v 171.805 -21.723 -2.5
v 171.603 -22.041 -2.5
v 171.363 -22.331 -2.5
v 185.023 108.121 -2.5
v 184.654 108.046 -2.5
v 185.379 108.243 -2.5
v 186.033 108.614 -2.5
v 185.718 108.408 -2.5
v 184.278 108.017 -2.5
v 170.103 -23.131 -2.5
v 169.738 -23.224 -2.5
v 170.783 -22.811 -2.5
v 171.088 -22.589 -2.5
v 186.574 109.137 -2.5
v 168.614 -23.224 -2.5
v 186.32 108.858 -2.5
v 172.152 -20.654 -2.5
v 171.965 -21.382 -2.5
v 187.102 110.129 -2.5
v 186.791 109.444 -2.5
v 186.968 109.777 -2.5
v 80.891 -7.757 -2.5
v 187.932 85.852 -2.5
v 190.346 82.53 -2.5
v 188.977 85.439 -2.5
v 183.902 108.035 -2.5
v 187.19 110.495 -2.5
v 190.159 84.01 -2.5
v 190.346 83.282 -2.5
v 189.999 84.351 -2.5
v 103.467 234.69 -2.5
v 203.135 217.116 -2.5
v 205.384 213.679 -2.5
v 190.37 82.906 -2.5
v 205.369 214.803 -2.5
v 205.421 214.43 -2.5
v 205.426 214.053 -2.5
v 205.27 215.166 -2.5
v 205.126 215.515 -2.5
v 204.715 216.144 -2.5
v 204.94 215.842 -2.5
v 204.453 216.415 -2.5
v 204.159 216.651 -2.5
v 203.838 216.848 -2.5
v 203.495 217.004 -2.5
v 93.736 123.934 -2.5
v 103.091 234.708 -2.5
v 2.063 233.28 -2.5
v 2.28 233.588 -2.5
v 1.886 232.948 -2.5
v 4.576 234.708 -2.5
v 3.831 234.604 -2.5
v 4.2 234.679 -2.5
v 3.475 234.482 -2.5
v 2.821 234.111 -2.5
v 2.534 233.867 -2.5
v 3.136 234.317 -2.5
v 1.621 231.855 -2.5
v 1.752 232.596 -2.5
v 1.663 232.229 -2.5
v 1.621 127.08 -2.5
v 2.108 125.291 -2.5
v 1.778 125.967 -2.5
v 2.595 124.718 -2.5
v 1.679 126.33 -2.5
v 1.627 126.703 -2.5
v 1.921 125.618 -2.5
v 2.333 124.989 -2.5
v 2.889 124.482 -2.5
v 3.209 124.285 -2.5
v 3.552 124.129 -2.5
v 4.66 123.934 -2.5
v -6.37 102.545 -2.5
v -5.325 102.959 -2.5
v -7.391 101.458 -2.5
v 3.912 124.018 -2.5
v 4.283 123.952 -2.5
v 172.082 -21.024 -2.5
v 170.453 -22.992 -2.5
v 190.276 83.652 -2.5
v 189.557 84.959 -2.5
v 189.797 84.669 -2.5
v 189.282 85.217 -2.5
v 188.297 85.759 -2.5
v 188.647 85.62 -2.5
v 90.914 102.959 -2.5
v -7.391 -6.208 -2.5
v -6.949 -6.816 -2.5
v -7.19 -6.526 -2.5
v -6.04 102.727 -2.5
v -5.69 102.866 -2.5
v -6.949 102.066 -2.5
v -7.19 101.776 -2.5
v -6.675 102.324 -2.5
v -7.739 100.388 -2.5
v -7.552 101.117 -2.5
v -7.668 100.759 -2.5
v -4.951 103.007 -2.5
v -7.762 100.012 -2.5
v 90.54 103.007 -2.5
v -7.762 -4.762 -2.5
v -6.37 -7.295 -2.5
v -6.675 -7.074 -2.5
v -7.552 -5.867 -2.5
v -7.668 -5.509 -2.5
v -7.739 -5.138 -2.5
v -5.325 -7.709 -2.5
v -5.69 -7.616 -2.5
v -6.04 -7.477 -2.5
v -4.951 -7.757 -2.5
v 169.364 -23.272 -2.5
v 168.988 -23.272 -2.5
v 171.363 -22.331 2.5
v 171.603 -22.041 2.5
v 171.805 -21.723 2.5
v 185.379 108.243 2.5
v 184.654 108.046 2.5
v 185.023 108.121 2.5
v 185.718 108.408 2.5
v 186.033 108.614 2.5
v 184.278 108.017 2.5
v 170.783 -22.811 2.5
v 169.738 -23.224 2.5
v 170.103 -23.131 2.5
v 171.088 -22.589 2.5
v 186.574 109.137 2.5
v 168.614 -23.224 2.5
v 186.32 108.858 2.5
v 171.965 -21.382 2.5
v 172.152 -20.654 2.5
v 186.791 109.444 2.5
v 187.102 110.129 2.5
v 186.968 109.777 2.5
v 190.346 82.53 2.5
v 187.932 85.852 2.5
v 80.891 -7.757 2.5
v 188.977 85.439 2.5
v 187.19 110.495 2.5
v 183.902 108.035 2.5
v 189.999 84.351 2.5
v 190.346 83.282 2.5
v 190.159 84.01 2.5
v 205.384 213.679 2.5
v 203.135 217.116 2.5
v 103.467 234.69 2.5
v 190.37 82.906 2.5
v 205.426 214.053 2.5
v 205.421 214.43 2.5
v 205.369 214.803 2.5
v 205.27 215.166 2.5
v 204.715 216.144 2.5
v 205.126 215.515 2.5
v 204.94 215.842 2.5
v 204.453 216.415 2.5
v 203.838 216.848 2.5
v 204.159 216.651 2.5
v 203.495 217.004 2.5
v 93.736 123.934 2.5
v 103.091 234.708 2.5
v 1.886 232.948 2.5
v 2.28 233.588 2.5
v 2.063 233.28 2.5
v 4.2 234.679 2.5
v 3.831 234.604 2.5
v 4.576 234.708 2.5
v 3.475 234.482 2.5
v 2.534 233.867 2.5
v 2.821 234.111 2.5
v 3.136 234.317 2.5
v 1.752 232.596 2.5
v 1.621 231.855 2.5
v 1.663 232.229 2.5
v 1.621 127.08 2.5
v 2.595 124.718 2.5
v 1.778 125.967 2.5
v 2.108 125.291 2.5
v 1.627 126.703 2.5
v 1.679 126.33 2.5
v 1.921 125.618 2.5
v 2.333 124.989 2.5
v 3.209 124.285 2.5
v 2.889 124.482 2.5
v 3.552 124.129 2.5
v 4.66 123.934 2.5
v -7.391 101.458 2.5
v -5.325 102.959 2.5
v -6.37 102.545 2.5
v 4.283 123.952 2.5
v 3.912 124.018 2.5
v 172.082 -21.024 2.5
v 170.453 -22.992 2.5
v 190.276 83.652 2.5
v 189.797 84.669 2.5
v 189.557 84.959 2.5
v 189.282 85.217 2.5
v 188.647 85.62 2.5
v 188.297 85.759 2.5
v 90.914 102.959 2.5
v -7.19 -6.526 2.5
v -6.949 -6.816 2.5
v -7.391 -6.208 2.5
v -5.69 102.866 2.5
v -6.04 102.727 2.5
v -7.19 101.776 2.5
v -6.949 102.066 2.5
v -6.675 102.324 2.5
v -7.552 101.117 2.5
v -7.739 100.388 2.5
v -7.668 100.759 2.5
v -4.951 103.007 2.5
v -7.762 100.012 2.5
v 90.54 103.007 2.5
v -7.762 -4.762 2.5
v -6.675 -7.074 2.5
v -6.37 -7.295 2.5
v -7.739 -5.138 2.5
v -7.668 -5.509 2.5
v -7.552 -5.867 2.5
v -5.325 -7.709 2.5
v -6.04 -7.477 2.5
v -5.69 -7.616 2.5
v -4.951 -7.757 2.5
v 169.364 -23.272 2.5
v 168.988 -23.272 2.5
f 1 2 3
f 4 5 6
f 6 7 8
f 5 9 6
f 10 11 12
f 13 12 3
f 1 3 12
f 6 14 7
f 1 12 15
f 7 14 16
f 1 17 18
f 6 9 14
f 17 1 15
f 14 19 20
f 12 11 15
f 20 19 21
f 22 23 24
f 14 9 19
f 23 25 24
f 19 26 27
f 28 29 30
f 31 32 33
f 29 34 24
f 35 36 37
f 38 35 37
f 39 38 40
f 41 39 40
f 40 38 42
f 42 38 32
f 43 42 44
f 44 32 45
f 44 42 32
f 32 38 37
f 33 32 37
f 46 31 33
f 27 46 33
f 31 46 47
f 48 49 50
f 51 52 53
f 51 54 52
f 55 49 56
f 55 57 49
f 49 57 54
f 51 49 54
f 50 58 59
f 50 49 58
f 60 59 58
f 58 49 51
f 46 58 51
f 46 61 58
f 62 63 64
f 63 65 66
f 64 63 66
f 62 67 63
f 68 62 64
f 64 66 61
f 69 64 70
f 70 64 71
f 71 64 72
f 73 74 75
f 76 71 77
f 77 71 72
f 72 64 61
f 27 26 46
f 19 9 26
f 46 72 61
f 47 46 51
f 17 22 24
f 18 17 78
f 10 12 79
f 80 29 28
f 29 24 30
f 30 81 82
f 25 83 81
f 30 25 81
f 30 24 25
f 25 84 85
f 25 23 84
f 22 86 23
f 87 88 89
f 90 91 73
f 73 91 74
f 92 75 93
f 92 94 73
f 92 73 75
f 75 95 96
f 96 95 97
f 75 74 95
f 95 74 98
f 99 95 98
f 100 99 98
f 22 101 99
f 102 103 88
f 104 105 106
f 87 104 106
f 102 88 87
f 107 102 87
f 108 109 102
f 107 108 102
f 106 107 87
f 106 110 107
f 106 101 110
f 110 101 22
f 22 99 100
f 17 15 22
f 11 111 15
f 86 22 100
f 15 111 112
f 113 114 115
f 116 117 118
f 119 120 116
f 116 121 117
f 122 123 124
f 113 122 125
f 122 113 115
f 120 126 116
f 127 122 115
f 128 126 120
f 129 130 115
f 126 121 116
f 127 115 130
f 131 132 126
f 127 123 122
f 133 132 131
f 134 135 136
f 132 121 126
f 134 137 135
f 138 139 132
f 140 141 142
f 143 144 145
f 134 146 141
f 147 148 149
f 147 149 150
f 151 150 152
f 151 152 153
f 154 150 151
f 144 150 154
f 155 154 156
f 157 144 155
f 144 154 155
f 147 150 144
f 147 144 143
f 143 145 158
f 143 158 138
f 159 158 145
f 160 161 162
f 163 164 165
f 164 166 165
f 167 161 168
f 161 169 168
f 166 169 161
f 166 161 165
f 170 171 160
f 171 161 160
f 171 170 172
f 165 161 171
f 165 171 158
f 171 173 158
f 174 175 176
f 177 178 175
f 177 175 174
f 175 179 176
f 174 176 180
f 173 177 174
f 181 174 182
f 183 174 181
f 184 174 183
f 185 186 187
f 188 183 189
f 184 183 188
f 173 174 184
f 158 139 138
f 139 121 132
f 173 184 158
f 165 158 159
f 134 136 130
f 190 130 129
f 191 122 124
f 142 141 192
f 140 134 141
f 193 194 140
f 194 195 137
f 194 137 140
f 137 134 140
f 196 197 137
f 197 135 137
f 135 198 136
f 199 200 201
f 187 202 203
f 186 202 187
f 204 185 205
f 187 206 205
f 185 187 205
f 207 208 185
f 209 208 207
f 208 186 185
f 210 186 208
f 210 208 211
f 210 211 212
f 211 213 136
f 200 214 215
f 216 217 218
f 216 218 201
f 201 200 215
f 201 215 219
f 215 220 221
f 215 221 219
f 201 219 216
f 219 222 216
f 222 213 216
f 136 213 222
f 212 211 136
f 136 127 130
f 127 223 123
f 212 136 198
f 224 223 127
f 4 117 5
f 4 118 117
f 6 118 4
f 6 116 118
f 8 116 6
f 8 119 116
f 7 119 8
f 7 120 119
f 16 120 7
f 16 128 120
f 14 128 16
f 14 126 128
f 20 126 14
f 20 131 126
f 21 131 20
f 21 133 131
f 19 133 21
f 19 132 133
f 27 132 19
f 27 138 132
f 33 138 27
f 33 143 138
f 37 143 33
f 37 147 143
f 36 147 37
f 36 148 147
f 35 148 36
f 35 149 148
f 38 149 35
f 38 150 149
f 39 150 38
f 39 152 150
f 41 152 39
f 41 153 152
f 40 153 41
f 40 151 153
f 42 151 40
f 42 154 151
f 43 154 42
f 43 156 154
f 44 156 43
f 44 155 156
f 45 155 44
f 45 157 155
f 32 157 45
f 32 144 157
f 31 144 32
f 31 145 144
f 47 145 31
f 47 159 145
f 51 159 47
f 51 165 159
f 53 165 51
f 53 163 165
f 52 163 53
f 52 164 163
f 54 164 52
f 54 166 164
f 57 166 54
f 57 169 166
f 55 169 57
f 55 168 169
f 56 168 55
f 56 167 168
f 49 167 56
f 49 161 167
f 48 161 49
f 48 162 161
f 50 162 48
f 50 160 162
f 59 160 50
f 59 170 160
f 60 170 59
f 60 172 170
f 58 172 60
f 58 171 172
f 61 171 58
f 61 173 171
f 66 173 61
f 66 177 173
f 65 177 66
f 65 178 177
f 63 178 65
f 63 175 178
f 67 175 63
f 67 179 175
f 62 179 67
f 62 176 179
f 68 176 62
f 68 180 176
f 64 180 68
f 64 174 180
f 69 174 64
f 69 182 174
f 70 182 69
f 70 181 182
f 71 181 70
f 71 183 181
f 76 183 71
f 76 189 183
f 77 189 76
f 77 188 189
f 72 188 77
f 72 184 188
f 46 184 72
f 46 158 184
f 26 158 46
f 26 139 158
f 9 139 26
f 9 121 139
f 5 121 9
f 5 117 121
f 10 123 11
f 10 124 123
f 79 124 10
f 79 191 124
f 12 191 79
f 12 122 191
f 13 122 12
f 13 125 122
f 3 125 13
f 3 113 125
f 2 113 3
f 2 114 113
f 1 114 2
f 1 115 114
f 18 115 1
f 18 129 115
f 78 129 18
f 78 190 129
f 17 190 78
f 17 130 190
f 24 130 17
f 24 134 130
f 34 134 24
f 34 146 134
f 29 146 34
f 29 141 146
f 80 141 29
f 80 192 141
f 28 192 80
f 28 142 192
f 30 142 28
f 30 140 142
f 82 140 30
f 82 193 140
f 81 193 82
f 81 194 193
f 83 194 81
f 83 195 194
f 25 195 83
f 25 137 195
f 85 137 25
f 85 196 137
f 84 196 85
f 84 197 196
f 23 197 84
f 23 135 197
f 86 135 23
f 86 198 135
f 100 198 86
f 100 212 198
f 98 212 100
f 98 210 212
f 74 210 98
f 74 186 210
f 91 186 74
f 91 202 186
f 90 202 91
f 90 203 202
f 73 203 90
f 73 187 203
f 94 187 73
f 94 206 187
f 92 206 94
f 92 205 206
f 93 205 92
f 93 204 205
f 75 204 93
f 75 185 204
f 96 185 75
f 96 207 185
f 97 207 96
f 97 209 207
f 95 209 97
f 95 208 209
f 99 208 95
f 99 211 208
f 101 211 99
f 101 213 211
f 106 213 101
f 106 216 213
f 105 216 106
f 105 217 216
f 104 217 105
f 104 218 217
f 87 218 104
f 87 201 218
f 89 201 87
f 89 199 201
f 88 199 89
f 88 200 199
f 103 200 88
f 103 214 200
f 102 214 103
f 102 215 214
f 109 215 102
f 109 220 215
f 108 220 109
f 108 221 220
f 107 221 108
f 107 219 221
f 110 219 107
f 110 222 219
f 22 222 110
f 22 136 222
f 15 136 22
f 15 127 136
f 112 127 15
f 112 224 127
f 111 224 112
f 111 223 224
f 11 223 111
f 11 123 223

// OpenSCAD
// file: const.scad
KNOB_LEFT = 1;
KNOB_RIGHT = 2;

TYPE_A = "A";
TYPE_B = "B";
TYPE_C = "C";
// main file
include <base.scad>;

linear_extrude(height=PLATE_HEIGHT, center=true)
    union() {
        left(TYPE_C, PADDING);
        right(TYPE_C, PADDING);
    };
